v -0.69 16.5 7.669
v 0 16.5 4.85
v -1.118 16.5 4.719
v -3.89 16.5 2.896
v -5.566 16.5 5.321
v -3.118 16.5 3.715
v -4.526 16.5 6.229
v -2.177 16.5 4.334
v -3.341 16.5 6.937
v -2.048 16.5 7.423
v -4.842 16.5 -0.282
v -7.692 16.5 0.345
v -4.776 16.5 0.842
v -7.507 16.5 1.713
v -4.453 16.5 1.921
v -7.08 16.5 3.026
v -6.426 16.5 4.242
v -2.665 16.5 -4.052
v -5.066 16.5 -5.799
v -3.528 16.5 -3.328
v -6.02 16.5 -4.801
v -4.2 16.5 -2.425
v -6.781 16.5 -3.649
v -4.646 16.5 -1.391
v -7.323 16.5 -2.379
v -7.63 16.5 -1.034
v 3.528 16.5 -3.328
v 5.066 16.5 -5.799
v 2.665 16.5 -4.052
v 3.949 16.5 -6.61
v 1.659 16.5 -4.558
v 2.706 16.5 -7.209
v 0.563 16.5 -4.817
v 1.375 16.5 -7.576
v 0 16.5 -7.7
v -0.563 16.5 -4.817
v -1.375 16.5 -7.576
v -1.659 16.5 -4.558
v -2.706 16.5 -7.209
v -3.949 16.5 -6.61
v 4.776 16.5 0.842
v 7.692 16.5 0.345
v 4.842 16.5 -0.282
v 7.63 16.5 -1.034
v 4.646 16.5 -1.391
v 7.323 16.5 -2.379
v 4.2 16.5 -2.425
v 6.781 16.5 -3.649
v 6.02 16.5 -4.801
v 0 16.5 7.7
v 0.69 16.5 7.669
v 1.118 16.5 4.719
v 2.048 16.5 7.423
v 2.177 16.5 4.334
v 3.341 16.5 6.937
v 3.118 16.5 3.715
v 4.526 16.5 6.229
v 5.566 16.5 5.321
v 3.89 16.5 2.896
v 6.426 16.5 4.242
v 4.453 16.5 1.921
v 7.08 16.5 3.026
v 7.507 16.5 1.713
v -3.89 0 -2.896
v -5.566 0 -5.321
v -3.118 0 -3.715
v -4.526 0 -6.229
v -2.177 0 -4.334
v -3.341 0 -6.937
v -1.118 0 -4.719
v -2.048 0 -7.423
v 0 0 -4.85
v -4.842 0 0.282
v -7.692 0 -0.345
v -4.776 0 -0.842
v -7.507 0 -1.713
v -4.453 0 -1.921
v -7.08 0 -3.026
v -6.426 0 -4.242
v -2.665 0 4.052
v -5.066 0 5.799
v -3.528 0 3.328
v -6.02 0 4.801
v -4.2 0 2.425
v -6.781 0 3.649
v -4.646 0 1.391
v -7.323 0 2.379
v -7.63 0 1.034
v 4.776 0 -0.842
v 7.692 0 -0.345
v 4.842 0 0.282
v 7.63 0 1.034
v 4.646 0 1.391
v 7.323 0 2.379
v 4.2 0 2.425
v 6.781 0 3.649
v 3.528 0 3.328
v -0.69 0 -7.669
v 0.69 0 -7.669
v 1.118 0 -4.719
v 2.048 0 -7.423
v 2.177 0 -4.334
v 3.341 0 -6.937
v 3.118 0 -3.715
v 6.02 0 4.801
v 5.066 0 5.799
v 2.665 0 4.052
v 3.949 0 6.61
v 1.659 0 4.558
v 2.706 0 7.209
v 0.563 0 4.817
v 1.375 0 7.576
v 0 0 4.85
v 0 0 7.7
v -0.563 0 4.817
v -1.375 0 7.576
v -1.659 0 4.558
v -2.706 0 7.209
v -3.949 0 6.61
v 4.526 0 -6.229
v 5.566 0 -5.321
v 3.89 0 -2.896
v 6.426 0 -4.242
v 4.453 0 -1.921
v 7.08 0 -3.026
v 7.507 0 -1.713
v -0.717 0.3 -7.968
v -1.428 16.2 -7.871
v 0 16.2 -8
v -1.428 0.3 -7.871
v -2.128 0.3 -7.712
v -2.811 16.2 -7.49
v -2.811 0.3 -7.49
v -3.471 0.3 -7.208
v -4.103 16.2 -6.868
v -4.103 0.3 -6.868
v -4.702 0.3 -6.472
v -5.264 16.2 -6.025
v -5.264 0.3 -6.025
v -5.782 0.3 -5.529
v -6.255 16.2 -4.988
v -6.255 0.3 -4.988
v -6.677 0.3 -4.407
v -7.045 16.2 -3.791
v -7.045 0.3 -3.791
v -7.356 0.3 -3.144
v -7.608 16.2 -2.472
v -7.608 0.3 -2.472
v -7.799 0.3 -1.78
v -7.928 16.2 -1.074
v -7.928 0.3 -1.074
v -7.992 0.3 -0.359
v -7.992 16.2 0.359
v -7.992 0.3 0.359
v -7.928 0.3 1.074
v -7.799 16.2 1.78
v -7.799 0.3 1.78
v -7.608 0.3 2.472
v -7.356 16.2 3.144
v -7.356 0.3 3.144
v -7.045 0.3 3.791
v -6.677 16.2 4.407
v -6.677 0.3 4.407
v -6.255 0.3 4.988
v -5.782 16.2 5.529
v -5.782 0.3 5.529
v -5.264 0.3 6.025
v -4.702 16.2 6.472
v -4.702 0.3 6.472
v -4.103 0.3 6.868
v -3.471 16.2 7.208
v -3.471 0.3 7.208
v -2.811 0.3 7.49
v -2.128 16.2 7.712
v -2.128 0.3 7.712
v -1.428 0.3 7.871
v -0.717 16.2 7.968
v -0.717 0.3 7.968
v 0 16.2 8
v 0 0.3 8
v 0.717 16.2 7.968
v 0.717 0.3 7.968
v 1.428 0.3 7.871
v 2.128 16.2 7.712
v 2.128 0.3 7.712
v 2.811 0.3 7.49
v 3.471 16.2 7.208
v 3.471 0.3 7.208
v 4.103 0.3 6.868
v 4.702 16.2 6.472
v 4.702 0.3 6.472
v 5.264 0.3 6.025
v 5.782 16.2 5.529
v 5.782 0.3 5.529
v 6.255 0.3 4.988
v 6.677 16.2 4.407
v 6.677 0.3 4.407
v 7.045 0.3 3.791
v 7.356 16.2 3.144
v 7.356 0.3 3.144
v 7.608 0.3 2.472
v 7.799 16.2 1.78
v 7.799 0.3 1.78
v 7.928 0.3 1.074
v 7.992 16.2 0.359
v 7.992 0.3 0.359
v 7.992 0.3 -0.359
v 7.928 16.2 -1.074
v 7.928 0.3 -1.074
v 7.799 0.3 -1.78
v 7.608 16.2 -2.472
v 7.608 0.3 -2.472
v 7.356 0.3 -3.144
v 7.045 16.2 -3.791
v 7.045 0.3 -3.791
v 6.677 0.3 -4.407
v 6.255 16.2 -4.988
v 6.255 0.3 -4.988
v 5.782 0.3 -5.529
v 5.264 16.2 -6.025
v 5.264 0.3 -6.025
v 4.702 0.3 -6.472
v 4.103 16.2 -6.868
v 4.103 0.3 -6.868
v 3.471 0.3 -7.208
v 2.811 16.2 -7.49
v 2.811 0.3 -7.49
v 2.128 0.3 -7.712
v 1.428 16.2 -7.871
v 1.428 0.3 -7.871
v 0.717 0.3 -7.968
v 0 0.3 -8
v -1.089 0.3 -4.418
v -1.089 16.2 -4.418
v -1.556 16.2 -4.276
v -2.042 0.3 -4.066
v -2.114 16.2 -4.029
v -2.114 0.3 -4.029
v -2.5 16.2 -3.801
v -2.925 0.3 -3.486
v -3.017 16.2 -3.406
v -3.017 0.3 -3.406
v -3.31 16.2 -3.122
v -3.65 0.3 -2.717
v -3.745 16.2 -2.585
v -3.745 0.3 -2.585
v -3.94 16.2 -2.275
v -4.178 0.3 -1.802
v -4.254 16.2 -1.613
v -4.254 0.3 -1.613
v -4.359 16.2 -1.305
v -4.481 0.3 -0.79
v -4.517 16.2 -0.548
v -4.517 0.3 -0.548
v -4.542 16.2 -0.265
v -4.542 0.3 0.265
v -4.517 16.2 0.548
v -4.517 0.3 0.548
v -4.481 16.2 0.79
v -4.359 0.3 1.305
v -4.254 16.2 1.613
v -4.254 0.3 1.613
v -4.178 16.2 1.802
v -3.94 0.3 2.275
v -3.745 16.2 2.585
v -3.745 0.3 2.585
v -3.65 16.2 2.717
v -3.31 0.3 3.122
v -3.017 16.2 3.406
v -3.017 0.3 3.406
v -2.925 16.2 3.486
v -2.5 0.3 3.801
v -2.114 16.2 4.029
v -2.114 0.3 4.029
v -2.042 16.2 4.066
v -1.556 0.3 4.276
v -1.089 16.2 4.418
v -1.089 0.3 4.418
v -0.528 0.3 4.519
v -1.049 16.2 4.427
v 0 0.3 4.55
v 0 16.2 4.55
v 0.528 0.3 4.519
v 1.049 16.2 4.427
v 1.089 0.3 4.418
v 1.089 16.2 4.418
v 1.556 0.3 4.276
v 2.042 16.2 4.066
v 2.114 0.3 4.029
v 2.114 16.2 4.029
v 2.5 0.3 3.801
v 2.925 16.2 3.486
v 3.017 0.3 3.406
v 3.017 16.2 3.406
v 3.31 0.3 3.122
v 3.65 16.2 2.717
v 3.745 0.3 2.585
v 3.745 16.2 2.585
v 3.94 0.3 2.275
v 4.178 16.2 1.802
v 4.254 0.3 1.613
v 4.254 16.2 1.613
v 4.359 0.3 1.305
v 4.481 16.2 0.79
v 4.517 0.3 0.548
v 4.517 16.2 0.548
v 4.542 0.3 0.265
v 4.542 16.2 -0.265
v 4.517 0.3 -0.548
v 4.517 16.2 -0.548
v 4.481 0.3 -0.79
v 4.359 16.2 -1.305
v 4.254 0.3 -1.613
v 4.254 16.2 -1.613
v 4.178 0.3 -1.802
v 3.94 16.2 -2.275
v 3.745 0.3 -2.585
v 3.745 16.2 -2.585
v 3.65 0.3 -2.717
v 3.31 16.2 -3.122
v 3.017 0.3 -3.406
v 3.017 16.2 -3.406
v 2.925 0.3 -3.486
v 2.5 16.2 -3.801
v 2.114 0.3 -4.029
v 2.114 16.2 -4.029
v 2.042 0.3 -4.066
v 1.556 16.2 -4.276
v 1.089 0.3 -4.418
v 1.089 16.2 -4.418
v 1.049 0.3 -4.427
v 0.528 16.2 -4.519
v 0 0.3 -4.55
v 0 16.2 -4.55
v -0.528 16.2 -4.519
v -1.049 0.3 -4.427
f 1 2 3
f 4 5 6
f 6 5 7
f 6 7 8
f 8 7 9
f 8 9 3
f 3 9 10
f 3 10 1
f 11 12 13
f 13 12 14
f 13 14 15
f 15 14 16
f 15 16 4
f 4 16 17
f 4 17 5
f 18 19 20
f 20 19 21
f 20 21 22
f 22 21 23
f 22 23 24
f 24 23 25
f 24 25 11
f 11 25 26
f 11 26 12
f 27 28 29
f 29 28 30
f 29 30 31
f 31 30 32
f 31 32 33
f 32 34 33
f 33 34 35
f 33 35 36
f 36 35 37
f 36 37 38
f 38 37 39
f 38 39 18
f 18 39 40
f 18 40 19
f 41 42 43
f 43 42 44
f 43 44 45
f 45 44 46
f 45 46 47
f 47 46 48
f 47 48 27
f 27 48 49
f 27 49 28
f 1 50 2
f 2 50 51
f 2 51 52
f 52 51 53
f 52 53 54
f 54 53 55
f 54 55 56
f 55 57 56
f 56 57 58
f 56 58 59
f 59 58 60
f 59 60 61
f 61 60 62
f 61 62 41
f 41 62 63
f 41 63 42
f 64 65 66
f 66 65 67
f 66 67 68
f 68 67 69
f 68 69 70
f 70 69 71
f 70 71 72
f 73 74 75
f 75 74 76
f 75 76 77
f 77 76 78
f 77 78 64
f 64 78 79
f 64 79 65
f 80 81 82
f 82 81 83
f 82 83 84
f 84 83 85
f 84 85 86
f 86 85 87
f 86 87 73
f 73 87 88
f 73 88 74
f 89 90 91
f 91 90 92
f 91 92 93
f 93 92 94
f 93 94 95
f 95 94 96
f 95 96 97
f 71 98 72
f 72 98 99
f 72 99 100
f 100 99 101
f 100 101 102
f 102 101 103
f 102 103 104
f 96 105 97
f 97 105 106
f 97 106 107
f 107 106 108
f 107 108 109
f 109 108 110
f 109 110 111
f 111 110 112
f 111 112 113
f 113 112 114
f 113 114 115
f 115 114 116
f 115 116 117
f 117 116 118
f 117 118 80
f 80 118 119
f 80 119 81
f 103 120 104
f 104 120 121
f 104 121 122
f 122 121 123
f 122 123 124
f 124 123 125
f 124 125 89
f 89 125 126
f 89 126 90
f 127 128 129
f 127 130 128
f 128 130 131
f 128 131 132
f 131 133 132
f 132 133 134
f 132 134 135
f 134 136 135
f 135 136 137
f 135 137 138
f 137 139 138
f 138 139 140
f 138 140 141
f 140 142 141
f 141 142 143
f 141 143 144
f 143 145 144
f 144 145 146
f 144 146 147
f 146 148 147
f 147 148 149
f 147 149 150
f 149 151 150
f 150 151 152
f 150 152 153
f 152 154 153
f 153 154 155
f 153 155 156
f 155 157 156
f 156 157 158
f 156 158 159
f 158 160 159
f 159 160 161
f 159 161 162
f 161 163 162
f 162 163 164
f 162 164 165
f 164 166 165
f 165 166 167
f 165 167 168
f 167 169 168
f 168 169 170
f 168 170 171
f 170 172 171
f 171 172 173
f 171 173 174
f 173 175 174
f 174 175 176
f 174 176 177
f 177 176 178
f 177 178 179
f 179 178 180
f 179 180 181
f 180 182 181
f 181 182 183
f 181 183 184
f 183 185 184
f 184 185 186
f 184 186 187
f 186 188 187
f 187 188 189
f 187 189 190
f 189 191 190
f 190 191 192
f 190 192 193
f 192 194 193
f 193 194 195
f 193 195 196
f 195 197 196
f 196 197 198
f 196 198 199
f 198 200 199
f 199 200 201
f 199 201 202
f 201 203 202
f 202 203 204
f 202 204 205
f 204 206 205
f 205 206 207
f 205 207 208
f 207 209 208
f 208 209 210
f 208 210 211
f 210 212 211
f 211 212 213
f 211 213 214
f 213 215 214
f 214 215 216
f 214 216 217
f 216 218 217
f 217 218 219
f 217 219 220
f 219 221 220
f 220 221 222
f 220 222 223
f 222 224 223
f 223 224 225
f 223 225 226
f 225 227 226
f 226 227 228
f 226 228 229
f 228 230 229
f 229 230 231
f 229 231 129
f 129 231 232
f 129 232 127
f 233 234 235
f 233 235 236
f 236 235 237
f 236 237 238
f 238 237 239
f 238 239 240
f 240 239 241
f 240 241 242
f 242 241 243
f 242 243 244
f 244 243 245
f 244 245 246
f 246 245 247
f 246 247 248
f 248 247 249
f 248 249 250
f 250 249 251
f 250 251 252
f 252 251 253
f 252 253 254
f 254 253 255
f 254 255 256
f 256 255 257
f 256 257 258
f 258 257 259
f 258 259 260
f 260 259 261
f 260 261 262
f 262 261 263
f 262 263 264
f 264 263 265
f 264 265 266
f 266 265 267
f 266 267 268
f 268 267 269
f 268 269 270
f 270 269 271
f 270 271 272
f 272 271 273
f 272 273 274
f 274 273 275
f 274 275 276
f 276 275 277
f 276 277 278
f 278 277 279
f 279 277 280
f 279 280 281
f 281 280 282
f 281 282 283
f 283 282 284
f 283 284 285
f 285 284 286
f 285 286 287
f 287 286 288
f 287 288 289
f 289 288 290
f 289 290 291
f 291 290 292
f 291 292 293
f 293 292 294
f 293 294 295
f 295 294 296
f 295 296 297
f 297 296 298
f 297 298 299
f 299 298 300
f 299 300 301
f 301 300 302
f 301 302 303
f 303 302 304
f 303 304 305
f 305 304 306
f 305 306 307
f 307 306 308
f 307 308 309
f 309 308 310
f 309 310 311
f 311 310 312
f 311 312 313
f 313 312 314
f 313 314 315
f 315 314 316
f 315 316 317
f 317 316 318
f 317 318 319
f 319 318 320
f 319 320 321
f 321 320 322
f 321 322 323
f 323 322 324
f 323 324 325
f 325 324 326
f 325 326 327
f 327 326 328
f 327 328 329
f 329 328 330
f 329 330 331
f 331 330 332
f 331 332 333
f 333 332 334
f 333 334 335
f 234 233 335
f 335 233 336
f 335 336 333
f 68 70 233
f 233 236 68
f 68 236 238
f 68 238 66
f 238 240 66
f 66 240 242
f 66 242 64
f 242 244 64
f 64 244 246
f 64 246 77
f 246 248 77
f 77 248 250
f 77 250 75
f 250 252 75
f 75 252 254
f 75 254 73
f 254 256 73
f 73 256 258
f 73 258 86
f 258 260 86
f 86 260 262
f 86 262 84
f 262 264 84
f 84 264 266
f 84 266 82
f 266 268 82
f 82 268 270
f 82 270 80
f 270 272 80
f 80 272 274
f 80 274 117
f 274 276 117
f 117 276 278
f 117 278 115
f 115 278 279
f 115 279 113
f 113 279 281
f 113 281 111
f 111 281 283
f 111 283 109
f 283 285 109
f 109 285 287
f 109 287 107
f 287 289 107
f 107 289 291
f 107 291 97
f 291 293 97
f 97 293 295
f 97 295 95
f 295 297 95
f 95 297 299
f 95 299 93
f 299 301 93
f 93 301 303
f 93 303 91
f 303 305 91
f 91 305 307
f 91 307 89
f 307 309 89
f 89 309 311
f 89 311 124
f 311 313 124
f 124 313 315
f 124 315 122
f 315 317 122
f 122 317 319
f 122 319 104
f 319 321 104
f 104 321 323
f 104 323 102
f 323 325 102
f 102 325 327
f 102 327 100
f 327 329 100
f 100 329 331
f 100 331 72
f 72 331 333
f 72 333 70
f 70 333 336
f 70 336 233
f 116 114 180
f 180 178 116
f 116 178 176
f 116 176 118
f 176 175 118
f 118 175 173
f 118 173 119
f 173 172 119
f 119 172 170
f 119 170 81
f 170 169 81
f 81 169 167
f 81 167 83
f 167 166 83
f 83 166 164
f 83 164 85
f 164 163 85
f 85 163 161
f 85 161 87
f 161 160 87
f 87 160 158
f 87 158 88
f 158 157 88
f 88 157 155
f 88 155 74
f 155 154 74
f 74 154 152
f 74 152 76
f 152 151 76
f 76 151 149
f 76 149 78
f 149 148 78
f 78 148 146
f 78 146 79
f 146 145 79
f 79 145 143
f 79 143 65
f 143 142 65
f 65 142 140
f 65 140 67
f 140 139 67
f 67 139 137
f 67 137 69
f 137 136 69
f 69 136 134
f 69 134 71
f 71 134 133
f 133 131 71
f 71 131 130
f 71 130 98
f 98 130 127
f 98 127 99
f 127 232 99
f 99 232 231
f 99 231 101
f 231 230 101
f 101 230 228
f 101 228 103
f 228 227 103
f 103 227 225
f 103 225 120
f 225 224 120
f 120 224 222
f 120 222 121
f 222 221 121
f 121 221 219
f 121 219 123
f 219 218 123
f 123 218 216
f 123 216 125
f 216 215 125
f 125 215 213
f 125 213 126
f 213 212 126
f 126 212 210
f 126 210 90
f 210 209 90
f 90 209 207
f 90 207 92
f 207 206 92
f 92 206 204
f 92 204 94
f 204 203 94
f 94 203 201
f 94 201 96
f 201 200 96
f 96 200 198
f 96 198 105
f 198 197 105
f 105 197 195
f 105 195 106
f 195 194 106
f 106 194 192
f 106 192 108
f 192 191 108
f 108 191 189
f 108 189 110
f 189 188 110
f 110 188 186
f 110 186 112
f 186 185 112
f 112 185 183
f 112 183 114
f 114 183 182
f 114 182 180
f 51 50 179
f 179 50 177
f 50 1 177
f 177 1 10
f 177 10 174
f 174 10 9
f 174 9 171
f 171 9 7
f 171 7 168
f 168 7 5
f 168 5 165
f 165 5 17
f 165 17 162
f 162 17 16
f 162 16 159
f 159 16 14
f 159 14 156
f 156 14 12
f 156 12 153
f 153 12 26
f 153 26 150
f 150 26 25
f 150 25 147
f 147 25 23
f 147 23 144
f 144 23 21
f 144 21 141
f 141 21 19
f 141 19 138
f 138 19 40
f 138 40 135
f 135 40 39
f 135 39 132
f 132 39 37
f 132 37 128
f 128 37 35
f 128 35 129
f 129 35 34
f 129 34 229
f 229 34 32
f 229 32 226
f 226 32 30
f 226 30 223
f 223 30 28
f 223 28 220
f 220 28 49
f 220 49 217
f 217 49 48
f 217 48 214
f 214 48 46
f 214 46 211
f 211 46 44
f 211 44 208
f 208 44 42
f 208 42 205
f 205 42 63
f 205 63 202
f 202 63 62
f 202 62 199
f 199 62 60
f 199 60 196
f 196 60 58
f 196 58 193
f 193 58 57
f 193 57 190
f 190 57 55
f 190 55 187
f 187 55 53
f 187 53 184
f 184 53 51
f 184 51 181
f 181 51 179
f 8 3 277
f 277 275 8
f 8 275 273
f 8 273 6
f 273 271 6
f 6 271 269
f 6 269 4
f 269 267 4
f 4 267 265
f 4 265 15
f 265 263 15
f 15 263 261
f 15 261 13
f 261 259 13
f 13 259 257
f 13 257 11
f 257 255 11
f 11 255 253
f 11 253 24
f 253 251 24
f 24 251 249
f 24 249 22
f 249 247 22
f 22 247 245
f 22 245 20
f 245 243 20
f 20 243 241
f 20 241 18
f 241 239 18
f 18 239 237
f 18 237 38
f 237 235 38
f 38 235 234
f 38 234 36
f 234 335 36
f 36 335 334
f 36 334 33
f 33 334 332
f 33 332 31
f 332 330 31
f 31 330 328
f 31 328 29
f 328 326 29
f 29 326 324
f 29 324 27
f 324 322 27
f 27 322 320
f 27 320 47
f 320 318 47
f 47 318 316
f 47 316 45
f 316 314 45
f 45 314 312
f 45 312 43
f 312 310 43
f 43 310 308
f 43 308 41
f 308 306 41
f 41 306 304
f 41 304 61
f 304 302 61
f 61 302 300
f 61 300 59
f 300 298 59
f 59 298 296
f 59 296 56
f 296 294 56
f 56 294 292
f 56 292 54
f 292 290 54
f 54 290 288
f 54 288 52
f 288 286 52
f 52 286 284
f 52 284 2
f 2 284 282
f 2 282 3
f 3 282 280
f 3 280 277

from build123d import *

# Parameters (mm, degrees)
ESQUISSE1_R        = 8
ESQUISSE1_R_2      = 4.55
BOSS_EXTRU_1_DEPTH = 16.5
CHANFREIN1_SIZE    = 0.3


with BuildPart() as part:
    # Esquisse1 → Boss.-Extru.1 (new body)
    with BuildSketch(Plane(origin=(0, 0, 0), x_dir=(1, 0, 0), z_dir=(0, 1, 0))):
        with Locations(Location((0, 0, 0), (0, 0, 270))):
            Circle(ESQUISSE1_R)
        with Locations(Location((0, 0, 0), (0, 0, 270))):
            Circle(ESQUISSE1_R_2, mode=Mode.SUBTRACT)
    extrude(amount=BOSS_EXTRU_1_DEPTH)

    # Chanfrein1
    chanfrein1_edges = [part.edges().sort_by_distance(p)[0] for p in [
        (0, 0, -8),
        (0, 16.5, -8),
        (0, 0, -4.55),
        (0, 16.5, -4.55),
    ]]
    chamfer(chanfrein1_edges, length=CHANFREIN1_SIZE)


solid = part.part
